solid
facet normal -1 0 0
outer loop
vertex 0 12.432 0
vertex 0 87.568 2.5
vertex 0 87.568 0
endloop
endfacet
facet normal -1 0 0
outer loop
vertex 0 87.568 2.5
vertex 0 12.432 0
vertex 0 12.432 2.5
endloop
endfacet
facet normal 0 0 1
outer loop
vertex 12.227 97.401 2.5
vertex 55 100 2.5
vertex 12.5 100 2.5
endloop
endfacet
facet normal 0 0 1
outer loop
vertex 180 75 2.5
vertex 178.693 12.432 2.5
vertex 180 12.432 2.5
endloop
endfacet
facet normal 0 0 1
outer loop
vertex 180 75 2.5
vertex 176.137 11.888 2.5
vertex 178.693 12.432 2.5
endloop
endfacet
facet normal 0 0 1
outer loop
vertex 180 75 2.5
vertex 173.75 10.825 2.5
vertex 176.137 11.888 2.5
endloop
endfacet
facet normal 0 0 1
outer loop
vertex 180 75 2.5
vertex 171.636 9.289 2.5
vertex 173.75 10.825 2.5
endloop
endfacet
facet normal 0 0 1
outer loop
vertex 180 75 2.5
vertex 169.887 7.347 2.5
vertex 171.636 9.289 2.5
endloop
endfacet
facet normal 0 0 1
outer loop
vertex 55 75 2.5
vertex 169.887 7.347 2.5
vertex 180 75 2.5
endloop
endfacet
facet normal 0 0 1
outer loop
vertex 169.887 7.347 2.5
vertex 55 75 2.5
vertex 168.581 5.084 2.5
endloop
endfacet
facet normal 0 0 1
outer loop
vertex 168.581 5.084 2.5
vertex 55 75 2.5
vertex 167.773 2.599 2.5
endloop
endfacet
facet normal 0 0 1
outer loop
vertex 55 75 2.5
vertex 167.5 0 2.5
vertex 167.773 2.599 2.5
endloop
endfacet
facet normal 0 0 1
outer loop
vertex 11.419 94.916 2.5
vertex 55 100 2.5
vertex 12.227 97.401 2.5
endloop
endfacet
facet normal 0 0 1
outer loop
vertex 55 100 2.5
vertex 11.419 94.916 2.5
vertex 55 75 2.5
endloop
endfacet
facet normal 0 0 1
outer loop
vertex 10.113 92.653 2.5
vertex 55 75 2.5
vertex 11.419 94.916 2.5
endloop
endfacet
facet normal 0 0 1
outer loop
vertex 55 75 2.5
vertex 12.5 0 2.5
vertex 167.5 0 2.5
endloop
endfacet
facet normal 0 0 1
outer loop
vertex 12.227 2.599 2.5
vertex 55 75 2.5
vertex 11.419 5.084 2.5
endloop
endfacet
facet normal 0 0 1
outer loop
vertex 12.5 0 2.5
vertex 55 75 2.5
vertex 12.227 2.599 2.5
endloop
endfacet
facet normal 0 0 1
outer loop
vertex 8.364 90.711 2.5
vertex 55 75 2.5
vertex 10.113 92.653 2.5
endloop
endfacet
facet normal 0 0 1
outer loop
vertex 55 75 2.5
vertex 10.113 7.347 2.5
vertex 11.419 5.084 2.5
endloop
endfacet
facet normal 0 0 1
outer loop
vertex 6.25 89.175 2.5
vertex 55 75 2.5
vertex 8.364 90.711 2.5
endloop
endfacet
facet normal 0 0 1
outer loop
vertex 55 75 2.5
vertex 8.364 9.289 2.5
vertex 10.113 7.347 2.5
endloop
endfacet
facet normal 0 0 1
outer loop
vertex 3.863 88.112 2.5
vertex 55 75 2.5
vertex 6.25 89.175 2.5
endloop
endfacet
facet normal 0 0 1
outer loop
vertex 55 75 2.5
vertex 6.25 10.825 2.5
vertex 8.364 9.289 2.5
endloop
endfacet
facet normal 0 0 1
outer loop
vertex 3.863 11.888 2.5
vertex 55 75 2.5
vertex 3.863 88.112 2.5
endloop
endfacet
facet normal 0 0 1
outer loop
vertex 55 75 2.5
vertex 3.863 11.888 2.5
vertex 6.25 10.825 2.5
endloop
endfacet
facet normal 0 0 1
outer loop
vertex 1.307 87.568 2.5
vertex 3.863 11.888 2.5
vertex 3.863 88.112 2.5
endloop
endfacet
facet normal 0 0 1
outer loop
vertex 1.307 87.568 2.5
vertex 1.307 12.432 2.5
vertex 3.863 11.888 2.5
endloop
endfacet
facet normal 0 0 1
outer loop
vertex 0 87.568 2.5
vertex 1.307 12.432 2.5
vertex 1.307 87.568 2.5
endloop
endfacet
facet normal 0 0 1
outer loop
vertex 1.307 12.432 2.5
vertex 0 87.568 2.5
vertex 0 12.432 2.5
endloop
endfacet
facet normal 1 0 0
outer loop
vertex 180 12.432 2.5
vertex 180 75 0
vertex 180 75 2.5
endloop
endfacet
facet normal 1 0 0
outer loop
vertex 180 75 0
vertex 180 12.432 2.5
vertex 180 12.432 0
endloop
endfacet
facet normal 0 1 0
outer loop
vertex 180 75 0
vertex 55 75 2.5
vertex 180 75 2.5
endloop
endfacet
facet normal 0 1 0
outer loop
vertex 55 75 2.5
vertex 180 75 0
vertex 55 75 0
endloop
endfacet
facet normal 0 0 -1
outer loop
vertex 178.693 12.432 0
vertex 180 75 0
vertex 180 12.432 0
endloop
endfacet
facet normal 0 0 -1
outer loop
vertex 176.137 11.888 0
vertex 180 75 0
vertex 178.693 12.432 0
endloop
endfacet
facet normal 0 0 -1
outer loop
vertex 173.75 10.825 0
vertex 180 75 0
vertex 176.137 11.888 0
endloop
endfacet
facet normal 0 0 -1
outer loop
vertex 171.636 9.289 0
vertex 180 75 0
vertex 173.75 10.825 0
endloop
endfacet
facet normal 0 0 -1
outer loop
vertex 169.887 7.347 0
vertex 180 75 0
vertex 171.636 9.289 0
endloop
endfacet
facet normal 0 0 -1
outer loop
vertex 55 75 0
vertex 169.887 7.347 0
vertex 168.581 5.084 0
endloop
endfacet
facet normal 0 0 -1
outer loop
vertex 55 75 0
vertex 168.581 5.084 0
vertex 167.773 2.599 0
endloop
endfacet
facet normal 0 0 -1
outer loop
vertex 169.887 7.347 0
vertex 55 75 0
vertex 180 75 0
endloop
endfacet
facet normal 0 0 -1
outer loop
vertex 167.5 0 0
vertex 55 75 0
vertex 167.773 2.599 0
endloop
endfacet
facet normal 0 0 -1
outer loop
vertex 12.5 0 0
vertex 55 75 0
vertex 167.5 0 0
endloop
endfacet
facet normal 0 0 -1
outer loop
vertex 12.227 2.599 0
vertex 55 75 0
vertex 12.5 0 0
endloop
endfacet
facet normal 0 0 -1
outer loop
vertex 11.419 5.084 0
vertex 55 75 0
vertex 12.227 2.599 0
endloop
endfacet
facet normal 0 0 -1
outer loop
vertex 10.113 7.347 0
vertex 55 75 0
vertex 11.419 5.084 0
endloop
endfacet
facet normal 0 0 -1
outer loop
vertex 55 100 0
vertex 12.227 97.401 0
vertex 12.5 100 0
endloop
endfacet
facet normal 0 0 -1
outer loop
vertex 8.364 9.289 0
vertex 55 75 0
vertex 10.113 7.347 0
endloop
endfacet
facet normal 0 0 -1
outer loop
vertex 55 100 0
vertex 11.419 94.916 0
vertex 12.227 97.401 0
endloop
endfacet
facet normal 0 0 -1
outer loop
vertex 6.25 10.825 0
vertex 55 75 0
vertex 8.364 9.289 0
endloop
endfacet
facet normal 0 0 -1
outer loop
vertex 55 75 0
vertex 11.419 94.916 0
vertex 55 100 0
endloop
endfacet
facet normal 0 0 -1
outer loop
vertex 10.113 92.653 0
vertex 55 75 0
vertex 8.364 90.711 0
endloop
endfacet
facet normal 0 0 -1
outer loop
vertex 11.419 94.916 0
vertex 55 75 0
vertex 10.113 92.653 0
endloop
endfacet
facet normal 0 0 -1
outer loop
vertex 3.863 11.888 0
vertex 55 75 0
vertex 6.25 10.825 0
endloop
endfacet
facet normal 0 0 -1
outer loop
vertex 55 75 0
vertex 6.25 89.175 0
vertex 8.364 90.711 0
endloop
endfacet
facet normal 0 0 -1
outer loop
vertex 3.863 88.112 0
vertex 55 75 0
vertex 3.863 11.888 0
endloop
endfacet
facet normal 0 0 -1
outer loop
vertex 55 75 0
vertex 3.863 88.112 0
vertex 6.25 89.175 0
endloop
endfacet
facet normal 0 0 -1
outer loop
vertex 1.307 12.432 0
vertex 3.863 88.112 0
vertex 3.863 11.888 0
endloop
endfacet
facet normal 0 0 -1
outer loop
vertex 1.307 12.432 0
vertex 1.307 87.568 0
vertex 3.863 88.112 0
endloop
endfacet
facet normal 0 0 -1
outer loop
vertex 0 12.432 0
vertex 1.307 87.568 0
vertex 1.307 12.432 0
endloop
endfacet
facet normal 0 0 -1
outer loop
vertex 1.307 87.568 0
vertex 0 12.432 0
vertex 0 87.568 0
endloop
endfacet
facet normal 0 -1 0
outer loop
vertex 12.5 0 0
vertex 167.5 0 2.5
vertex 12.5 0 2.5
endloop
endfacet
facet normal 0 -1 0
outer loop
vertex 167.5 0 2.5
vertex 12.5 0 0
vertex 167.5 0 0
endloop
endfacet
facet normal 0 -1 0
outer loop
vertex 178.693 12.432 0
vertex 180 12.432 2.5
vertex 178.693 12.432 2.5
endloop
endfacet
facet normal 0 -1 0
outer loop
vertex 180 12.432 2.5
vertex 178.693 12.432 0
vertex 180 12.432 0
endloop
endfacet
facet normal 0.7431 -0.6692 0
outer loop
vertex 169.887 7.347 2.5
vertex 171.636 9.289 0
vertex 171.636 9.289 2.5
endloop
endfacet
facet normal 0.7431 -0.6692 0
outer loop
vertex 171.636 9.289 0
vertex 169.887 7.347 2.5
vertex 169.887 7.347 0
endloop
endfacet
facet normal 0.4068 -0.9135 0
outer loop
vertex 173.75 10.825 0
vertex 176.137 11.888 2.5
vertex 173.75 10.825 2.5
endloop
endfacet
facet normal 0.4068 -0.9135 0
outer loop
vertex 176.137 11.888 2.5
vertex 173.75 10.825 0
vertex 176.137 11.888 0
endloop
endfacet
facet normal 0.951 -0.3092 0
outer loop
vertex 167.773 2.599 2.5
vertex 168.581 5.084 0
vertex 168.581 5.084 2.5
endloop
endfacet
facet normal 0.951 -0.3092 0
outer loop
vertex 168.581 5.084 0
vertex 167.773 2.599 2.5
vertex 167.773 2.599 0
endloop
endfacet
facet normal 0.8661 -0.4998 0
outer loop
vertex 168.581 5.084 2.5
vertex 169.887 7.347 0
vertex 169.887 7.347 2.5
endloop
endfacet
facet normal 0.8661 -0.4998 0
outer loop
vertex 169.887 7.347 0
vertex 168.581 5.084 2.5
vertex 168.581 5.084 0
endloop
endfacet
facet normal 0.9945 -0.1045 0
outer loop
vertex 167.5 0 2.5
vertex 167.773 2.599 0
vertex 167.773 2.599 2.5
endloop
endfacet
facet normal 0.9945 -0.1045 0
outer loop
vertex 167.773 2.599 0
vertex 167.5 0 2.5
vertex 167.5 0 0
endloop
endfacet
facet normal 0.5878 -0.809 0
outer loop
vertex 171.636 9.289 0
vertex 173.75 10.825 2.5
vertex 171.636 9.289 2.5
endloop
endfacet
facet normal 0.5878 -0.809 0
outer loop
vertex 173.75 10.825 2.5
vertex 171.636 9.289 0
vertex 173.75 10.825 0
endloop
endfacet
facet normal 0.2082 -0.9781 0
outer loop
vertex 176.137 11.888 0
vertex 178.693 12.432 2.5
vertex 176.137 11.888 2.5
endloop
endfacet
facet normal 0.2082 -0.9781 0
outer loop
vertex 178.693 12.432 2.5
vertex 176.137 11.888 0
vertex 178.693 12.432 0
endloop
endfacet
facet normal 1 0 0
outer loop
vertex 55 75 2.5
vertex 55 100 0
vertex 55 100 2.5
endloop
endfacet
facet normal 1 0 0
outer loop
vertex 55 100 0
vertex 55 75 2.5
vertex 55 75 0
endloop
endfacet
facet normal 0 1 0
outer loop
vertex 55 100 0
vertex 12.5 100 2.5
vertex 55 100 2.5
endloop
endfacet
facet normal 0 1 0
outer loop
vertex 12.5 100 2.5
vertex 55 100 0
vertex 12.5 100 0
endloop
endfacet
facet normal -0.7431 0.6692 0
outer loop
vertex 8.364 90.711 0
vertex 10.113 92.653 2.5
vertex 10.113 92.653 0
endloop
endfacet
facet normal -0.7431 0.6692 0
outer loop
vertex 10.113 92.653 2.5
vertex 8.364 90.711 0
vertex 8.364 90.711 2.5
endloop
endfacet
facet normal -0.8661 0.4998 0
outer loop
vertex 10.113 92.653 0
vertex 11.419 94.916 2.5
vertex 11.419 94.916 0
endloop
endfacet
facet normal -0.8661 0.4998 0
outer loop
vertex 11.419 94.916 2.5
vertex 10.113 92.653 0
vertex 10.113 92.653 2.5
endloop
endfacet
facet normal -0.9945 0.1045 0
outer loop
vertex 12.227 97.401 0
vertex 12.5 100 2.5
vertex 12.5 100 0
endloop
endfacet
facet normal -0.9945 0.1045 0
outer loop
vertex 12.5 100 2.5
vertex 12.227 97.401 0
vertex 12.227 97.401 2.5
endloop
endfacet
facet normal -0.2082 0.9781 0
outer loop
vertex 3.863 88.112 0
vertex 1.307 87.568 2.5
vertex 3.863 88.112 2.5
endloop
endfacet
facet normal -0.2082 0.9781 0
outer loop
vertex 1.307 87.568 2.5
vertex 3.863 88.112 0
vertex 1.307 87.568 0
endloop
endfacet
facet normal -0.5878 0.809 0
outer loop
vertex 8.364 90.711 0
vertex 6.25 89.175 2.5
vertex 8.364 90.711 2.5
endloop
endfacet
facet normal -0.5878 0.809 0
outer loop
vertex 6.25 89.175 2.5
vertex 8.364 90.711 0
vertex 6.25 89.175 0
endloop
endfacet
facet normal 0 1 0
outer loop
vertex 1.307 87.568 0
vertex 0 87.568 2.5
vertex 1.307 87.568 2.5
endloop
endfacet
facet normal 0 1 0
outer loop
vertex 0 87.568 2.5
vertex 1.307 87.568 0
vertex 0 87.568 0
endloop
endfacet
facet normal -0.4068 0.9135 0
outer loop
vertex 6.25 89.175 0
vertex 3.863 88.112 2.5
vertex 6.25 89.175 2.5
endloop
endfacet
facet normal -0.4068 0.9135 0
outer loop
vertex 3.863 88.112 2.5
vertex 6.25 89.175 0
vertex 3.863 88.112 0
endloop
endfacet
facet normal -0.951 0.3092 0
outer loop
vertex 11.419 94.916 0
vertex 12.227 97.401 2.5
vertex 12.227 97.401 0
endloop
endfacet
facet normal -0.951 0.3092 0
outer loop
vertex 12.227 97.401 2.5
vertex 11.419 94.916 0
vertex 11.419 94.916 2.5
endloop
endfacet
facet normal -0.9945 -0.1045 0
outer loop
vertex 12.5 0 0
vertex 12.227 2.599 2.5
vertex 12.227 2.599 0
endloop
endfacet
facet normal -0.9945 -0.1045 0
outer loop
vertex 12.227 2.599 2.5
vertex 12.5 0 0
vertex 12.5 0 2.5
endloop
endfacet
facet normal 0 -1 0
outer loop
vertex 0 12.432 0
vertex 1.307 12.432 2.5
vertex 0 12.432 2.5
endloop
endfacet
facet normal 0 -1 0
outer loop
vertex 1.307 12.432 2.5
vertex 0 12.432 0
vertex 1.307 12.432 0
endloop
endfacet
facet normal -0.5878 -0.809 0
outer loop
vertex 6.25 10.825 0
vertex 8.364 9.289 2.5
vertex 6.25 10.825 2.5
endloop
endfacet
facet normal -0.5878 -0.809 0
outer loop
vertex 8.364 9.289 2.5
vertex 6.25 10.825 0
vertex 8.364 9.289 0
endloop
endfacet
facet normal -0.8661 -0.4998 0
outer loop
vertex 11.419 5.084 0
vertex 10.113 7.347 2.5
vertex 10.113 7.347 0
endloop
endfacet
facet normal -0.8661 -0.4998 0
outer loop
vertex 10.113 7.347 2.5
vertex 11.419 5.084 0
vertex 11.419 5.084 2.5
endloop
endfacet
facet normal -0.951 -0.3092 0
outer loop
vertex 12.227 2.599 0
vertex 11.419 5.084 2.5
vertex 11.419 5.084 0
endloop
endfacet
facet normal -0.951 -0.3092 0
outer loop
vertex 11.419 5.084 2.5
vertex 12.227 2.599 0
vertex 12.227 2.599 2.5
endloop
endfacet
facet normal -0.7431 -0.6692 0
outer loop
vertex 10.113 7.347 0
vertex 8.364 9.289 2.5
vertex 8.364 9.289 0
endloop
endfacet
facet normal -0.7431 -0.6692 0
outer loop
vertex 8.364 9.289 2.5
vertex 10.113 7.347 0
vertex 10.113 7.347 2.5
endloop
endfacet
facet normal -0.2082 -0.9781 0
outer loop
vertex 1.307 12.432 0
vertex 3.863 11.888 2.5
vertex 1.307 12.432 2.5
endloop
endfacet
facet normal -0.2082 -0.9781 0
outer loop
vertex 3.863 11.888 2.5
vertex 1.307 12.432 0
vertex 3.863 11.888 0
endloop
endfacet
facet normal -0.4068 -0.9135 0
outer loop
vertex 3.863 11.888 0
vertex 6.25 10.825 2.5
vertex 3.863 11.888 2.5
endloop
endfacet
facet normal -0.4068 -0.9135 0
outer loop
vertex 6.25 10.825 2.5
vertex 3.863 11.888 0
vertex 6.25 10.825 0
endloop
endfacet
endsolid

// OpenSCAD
altura = 2.5; //3;

FN = 40;

difference(convexity = 1,$fn=FN){
union(convexity = 1, $fn=FN){    
    cubo_maior(); 
    cubo_menor();
}

//canto embaixo
translate([0, 0, -2])
canto();
}

module cubo_maior(){
difference(convexity = 1,$fn=FN){
    color("red")
    cube([180, 75, altura]);

    translate([180, 0, -2])
    canto();

    //translate([180, 75, -2])
    //canto();
}
}  

module cubo_menor(){
difference(convexity = 1,$fn=FN){
    color("green")
    cube([55, 100, altura]);

    translate([0, 100, -2])
    canto();
}
}  

module canto(){
    color("yellow")
    cylinder(h=10, r=25/2);
}
